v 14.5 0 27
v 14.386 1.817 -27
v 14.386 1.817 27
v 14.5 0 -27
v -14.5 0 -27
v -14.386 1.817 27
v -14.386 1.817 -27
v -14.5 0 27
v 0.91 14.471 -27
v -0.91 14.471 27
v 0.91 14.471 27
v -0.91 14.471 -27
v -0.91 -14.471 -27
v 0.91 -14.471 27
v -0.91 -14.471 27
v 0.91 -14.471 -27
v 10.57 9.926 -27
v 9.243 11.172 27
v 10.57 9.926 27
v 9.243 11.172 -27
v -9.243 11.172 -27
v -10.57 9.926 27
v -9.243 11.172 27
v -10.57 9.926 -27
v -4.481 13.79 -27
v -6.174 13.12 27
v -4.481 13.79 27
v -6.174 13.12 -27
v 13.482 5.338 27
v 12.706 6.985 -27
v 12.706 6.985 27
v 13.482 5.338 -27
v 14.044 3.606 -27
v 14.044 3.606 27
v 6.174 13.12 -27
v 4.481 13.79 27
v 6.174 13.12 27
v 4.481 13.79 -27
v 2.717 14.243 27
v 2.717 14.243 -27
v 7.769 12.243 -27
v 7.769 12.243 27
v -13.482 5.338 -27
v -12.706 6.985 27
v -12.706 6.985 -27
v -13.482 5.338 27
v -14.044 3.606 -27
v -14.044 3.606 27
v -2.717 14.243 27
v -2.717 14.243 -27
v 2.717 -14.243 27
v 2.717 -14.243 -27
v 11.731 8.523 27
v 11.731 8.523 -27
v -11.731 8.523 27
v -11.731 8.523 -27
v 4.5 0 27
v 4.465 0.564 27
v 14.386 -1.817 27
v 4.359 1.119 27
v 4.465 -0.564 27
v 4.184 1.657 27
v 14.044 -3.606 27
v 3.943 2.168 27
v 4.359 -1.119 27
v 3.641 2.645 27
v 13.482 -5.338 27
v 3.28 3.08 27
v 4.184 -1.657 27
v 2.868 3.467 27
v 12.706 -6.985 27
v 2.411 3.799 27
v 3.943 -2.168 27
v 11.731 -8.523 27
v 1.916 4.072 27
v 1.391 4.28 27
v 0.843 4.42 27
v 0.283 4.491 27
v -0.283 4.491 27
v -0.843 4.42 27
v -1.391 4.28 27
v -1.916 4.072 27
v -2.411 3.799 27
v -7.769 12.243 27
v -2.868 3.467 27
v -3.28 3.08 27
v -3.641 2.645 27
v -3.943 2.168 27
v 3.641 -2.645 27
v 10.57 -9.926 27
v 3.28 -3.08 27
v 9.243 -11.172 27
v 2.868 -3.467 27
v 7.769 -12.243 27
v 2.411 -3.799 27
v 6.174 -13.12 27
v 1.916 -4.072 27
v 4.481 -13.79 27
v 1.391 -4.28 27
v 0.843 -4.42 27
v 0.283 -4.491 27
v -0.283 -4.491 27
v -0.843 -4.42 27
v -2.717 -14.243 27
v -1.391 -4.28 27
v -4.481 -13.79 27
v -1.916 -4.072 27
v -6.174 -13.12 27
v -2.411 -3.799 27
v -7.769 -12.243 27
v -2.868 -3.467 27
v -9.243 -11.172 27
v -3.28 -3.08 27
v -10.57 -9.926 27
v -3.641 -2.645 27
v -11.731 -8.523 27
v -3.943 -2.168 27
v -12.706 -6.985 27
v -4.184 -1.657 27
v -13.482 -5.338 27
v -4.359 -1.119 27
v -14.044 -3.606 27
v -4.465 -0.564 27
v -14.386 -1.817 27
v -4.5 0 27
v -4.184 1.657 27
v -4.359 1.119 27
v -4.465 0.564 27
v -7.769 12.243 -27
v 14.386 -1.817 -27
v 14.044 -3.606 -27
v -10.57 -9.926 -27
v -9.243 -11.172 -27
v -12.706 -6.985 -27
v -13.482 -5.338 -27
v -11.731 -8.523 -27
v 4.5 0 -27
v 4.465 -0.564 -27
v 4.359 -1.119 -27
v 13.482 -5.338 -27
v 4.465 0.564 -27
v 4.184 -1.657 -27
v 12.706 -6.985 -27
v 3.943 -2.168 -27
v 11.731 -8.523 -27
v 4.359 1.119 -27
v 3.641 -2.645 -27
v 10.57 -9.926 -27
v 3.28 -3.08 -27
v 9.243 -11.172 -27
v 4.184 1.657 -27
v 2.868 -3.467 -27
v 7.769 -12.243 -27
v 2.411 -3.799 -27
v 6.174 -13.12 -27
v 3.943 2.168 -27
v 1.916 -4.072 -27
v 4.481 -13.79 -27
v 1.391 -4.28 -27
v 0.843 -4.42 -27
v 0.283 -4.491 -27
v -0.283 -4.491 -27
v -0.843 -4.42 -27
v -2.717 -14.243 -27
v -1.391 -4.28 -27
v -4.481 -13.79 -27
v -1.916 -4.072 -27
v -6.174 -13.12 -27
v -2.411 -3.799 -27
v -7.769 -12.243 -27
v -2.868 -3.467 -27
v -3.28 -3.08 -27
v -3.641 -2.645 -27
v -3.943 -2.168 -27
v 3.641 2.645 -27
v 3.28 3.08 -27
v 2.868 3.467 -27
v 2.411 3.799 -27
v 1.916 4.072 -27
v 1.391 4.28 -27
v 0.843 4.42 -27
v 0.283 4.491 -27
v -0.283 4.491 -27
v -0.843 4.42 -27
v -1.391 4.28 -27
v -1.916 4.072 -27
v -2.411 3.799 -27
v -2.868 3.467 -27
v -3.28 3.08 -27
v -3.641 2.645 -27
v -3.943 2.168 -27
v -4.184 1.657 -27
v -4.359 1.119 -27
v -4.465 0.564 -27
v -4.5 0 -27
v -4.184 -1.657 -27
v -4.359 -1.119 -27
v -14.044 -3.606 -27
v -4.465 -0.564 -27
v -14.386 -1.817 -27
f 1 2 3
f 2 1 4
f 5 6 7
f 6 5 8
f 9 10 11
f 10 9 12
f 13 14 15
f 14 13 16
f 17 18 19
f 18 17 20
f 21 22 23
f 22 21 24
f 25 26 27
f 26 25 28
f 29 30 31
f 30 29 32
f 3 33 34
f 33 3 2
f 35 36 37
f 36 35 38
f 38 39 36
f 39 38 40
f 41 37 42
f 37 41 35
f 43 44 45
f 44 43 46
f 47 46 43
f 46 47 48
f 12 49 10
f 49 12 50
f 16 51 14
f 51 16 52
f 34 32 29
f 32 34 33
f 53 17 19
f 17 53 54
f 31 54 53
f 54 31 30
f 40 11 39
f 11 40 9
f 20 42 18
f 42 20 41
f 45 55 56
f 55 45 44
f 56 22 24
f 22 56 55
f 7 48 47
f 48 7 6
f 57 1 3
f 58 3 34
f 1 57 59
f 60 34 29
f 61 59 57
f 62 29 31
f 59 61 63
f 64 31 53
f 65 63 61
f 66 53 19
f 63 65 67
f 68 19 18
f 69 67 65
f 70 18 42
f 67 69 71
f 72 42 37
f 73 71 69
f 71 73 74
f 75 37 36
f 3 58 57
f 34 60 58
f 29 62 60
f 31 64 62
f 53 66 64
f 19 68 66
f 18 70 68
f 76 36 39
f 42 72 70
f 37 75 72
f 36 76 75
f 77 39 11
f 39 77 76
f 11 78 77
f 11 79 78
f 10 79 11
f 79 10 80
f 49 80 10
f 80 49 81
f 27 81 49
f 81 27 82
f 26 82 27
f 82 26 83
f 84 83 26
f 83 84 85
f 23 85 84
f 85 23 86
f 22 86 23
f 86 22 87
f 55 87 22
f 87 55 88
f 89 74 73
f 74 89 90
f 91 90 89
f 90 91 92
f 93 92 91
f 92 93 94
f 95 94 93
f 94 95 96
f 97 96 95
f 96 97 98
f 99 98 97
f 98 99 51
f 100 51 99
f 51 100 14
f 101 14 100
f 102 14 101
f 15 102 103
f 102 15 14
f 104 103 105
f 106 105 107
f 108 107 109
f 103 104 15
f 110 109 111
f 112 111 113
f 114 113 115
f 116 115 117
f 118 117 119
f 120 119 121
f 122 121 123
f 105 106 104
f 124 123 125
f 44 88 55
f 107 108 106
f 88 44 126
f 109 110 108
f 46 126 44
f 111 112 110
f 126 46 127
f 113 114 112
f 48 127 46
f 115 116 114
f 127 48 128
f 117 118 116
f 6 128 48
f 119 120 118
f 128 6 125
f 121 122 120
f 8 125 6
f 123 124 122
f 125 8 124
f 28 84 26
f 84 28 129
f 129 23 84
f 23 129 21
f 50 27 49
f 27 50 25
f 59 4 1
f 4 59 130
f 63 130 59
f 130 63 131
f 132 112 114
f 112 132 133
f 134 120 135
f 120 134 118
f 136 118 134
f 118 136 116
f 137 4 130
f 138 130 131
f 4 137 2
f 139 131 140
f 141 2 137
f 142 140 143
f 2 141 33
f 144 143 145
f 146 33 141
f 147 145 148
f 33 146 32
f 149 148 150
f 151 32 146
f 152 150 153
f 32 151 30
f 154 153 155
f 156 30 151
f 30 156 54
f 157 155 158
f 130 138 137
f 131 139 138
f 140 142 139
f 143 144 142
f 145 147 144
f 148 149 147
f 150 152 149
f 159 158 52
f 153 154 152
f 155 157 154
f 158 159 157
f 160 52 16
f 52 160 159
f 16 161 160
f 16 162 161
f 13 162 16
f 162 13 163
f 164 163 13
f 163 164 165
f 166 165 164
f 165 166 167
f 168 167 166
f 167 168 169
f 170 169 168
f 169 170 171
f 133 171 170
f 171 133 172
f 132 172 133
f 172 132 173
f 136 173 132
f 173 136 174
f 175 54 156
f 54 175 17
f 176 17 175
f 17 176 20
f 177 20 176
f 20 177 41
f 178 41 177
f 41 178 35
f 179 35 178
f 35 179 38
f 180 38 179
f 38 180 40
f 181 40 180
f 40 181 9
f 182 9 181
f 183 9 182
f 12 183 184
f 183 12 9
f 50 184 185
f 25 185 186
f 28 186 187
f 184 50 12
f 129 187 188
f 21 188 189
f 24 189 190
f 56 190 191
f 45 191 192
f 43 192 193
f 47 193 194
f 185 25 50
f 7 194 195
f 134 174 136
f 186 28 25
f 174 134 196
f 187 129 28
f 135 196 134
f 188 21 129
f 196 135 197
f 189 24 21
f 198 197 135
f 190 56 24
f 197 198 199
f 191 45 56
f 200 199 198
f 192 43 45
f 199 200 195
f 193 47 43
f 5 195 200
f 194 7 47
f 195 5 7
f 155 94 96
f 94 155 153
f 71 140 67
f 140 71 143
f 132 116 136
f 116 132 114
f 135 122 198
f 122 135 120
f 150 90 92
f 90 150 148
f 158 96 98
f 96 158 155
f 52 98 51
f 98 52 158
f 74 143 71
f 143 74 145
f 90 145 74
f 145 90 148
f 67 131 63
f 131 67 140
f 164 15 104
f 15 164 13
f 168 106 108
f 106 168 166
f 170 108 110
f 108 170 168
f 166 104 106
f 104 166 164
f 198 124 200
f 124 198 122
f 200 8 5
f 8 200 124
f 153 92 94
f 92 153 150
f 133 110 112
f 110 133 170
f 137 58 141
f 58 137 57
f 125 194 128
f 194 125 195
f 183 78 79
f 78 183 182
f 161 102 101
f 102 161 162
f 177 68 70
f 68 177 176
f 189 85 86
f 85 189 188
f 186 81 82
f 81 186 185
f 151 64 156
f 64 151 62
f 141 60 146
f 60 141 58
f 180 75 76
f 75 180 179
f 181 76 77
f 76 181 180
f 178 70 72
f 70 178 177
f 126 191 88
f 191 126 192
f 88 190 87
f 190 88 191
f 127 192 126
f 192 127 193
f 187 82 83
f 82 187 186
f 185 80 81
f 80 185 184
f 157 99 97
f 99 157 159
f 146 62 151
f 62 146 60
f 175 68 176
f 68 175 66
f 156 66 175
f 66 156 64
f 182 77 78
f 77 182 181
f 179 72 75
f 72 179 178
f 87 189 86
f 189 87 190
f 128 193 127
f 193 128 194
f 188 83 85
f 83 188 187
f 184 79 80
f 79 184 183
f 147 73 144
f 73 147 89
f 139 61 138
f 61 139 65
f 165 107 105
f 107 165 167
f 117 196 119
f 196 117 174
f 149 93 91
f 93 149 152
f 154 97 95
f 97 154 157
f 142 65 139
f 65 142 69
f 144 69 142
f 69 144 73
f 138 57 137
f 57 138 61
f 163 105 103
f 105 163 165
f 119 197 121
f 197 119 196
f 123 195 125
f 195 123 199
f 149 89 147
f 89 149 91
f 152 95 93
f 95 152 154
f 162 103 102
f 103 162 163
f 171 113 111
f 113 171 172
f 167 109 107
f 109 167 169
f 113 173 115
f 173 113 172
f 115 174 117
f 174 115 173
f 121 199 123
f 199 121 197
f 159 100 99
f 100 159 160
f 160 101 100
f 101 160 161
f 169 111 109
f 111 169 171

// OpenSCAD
$fn = 50;


difference() {
	union() {
		translate(v = [0, 0, -27.0000000000]) {
			cylinder(h = 54, r = 14.5000000000);
		}
	}
	union() {
		translate(v = [0, 0, -100.0000000000]) {
			cylinder(h = 200, r = 4.5000000000);
		}
	}
}
